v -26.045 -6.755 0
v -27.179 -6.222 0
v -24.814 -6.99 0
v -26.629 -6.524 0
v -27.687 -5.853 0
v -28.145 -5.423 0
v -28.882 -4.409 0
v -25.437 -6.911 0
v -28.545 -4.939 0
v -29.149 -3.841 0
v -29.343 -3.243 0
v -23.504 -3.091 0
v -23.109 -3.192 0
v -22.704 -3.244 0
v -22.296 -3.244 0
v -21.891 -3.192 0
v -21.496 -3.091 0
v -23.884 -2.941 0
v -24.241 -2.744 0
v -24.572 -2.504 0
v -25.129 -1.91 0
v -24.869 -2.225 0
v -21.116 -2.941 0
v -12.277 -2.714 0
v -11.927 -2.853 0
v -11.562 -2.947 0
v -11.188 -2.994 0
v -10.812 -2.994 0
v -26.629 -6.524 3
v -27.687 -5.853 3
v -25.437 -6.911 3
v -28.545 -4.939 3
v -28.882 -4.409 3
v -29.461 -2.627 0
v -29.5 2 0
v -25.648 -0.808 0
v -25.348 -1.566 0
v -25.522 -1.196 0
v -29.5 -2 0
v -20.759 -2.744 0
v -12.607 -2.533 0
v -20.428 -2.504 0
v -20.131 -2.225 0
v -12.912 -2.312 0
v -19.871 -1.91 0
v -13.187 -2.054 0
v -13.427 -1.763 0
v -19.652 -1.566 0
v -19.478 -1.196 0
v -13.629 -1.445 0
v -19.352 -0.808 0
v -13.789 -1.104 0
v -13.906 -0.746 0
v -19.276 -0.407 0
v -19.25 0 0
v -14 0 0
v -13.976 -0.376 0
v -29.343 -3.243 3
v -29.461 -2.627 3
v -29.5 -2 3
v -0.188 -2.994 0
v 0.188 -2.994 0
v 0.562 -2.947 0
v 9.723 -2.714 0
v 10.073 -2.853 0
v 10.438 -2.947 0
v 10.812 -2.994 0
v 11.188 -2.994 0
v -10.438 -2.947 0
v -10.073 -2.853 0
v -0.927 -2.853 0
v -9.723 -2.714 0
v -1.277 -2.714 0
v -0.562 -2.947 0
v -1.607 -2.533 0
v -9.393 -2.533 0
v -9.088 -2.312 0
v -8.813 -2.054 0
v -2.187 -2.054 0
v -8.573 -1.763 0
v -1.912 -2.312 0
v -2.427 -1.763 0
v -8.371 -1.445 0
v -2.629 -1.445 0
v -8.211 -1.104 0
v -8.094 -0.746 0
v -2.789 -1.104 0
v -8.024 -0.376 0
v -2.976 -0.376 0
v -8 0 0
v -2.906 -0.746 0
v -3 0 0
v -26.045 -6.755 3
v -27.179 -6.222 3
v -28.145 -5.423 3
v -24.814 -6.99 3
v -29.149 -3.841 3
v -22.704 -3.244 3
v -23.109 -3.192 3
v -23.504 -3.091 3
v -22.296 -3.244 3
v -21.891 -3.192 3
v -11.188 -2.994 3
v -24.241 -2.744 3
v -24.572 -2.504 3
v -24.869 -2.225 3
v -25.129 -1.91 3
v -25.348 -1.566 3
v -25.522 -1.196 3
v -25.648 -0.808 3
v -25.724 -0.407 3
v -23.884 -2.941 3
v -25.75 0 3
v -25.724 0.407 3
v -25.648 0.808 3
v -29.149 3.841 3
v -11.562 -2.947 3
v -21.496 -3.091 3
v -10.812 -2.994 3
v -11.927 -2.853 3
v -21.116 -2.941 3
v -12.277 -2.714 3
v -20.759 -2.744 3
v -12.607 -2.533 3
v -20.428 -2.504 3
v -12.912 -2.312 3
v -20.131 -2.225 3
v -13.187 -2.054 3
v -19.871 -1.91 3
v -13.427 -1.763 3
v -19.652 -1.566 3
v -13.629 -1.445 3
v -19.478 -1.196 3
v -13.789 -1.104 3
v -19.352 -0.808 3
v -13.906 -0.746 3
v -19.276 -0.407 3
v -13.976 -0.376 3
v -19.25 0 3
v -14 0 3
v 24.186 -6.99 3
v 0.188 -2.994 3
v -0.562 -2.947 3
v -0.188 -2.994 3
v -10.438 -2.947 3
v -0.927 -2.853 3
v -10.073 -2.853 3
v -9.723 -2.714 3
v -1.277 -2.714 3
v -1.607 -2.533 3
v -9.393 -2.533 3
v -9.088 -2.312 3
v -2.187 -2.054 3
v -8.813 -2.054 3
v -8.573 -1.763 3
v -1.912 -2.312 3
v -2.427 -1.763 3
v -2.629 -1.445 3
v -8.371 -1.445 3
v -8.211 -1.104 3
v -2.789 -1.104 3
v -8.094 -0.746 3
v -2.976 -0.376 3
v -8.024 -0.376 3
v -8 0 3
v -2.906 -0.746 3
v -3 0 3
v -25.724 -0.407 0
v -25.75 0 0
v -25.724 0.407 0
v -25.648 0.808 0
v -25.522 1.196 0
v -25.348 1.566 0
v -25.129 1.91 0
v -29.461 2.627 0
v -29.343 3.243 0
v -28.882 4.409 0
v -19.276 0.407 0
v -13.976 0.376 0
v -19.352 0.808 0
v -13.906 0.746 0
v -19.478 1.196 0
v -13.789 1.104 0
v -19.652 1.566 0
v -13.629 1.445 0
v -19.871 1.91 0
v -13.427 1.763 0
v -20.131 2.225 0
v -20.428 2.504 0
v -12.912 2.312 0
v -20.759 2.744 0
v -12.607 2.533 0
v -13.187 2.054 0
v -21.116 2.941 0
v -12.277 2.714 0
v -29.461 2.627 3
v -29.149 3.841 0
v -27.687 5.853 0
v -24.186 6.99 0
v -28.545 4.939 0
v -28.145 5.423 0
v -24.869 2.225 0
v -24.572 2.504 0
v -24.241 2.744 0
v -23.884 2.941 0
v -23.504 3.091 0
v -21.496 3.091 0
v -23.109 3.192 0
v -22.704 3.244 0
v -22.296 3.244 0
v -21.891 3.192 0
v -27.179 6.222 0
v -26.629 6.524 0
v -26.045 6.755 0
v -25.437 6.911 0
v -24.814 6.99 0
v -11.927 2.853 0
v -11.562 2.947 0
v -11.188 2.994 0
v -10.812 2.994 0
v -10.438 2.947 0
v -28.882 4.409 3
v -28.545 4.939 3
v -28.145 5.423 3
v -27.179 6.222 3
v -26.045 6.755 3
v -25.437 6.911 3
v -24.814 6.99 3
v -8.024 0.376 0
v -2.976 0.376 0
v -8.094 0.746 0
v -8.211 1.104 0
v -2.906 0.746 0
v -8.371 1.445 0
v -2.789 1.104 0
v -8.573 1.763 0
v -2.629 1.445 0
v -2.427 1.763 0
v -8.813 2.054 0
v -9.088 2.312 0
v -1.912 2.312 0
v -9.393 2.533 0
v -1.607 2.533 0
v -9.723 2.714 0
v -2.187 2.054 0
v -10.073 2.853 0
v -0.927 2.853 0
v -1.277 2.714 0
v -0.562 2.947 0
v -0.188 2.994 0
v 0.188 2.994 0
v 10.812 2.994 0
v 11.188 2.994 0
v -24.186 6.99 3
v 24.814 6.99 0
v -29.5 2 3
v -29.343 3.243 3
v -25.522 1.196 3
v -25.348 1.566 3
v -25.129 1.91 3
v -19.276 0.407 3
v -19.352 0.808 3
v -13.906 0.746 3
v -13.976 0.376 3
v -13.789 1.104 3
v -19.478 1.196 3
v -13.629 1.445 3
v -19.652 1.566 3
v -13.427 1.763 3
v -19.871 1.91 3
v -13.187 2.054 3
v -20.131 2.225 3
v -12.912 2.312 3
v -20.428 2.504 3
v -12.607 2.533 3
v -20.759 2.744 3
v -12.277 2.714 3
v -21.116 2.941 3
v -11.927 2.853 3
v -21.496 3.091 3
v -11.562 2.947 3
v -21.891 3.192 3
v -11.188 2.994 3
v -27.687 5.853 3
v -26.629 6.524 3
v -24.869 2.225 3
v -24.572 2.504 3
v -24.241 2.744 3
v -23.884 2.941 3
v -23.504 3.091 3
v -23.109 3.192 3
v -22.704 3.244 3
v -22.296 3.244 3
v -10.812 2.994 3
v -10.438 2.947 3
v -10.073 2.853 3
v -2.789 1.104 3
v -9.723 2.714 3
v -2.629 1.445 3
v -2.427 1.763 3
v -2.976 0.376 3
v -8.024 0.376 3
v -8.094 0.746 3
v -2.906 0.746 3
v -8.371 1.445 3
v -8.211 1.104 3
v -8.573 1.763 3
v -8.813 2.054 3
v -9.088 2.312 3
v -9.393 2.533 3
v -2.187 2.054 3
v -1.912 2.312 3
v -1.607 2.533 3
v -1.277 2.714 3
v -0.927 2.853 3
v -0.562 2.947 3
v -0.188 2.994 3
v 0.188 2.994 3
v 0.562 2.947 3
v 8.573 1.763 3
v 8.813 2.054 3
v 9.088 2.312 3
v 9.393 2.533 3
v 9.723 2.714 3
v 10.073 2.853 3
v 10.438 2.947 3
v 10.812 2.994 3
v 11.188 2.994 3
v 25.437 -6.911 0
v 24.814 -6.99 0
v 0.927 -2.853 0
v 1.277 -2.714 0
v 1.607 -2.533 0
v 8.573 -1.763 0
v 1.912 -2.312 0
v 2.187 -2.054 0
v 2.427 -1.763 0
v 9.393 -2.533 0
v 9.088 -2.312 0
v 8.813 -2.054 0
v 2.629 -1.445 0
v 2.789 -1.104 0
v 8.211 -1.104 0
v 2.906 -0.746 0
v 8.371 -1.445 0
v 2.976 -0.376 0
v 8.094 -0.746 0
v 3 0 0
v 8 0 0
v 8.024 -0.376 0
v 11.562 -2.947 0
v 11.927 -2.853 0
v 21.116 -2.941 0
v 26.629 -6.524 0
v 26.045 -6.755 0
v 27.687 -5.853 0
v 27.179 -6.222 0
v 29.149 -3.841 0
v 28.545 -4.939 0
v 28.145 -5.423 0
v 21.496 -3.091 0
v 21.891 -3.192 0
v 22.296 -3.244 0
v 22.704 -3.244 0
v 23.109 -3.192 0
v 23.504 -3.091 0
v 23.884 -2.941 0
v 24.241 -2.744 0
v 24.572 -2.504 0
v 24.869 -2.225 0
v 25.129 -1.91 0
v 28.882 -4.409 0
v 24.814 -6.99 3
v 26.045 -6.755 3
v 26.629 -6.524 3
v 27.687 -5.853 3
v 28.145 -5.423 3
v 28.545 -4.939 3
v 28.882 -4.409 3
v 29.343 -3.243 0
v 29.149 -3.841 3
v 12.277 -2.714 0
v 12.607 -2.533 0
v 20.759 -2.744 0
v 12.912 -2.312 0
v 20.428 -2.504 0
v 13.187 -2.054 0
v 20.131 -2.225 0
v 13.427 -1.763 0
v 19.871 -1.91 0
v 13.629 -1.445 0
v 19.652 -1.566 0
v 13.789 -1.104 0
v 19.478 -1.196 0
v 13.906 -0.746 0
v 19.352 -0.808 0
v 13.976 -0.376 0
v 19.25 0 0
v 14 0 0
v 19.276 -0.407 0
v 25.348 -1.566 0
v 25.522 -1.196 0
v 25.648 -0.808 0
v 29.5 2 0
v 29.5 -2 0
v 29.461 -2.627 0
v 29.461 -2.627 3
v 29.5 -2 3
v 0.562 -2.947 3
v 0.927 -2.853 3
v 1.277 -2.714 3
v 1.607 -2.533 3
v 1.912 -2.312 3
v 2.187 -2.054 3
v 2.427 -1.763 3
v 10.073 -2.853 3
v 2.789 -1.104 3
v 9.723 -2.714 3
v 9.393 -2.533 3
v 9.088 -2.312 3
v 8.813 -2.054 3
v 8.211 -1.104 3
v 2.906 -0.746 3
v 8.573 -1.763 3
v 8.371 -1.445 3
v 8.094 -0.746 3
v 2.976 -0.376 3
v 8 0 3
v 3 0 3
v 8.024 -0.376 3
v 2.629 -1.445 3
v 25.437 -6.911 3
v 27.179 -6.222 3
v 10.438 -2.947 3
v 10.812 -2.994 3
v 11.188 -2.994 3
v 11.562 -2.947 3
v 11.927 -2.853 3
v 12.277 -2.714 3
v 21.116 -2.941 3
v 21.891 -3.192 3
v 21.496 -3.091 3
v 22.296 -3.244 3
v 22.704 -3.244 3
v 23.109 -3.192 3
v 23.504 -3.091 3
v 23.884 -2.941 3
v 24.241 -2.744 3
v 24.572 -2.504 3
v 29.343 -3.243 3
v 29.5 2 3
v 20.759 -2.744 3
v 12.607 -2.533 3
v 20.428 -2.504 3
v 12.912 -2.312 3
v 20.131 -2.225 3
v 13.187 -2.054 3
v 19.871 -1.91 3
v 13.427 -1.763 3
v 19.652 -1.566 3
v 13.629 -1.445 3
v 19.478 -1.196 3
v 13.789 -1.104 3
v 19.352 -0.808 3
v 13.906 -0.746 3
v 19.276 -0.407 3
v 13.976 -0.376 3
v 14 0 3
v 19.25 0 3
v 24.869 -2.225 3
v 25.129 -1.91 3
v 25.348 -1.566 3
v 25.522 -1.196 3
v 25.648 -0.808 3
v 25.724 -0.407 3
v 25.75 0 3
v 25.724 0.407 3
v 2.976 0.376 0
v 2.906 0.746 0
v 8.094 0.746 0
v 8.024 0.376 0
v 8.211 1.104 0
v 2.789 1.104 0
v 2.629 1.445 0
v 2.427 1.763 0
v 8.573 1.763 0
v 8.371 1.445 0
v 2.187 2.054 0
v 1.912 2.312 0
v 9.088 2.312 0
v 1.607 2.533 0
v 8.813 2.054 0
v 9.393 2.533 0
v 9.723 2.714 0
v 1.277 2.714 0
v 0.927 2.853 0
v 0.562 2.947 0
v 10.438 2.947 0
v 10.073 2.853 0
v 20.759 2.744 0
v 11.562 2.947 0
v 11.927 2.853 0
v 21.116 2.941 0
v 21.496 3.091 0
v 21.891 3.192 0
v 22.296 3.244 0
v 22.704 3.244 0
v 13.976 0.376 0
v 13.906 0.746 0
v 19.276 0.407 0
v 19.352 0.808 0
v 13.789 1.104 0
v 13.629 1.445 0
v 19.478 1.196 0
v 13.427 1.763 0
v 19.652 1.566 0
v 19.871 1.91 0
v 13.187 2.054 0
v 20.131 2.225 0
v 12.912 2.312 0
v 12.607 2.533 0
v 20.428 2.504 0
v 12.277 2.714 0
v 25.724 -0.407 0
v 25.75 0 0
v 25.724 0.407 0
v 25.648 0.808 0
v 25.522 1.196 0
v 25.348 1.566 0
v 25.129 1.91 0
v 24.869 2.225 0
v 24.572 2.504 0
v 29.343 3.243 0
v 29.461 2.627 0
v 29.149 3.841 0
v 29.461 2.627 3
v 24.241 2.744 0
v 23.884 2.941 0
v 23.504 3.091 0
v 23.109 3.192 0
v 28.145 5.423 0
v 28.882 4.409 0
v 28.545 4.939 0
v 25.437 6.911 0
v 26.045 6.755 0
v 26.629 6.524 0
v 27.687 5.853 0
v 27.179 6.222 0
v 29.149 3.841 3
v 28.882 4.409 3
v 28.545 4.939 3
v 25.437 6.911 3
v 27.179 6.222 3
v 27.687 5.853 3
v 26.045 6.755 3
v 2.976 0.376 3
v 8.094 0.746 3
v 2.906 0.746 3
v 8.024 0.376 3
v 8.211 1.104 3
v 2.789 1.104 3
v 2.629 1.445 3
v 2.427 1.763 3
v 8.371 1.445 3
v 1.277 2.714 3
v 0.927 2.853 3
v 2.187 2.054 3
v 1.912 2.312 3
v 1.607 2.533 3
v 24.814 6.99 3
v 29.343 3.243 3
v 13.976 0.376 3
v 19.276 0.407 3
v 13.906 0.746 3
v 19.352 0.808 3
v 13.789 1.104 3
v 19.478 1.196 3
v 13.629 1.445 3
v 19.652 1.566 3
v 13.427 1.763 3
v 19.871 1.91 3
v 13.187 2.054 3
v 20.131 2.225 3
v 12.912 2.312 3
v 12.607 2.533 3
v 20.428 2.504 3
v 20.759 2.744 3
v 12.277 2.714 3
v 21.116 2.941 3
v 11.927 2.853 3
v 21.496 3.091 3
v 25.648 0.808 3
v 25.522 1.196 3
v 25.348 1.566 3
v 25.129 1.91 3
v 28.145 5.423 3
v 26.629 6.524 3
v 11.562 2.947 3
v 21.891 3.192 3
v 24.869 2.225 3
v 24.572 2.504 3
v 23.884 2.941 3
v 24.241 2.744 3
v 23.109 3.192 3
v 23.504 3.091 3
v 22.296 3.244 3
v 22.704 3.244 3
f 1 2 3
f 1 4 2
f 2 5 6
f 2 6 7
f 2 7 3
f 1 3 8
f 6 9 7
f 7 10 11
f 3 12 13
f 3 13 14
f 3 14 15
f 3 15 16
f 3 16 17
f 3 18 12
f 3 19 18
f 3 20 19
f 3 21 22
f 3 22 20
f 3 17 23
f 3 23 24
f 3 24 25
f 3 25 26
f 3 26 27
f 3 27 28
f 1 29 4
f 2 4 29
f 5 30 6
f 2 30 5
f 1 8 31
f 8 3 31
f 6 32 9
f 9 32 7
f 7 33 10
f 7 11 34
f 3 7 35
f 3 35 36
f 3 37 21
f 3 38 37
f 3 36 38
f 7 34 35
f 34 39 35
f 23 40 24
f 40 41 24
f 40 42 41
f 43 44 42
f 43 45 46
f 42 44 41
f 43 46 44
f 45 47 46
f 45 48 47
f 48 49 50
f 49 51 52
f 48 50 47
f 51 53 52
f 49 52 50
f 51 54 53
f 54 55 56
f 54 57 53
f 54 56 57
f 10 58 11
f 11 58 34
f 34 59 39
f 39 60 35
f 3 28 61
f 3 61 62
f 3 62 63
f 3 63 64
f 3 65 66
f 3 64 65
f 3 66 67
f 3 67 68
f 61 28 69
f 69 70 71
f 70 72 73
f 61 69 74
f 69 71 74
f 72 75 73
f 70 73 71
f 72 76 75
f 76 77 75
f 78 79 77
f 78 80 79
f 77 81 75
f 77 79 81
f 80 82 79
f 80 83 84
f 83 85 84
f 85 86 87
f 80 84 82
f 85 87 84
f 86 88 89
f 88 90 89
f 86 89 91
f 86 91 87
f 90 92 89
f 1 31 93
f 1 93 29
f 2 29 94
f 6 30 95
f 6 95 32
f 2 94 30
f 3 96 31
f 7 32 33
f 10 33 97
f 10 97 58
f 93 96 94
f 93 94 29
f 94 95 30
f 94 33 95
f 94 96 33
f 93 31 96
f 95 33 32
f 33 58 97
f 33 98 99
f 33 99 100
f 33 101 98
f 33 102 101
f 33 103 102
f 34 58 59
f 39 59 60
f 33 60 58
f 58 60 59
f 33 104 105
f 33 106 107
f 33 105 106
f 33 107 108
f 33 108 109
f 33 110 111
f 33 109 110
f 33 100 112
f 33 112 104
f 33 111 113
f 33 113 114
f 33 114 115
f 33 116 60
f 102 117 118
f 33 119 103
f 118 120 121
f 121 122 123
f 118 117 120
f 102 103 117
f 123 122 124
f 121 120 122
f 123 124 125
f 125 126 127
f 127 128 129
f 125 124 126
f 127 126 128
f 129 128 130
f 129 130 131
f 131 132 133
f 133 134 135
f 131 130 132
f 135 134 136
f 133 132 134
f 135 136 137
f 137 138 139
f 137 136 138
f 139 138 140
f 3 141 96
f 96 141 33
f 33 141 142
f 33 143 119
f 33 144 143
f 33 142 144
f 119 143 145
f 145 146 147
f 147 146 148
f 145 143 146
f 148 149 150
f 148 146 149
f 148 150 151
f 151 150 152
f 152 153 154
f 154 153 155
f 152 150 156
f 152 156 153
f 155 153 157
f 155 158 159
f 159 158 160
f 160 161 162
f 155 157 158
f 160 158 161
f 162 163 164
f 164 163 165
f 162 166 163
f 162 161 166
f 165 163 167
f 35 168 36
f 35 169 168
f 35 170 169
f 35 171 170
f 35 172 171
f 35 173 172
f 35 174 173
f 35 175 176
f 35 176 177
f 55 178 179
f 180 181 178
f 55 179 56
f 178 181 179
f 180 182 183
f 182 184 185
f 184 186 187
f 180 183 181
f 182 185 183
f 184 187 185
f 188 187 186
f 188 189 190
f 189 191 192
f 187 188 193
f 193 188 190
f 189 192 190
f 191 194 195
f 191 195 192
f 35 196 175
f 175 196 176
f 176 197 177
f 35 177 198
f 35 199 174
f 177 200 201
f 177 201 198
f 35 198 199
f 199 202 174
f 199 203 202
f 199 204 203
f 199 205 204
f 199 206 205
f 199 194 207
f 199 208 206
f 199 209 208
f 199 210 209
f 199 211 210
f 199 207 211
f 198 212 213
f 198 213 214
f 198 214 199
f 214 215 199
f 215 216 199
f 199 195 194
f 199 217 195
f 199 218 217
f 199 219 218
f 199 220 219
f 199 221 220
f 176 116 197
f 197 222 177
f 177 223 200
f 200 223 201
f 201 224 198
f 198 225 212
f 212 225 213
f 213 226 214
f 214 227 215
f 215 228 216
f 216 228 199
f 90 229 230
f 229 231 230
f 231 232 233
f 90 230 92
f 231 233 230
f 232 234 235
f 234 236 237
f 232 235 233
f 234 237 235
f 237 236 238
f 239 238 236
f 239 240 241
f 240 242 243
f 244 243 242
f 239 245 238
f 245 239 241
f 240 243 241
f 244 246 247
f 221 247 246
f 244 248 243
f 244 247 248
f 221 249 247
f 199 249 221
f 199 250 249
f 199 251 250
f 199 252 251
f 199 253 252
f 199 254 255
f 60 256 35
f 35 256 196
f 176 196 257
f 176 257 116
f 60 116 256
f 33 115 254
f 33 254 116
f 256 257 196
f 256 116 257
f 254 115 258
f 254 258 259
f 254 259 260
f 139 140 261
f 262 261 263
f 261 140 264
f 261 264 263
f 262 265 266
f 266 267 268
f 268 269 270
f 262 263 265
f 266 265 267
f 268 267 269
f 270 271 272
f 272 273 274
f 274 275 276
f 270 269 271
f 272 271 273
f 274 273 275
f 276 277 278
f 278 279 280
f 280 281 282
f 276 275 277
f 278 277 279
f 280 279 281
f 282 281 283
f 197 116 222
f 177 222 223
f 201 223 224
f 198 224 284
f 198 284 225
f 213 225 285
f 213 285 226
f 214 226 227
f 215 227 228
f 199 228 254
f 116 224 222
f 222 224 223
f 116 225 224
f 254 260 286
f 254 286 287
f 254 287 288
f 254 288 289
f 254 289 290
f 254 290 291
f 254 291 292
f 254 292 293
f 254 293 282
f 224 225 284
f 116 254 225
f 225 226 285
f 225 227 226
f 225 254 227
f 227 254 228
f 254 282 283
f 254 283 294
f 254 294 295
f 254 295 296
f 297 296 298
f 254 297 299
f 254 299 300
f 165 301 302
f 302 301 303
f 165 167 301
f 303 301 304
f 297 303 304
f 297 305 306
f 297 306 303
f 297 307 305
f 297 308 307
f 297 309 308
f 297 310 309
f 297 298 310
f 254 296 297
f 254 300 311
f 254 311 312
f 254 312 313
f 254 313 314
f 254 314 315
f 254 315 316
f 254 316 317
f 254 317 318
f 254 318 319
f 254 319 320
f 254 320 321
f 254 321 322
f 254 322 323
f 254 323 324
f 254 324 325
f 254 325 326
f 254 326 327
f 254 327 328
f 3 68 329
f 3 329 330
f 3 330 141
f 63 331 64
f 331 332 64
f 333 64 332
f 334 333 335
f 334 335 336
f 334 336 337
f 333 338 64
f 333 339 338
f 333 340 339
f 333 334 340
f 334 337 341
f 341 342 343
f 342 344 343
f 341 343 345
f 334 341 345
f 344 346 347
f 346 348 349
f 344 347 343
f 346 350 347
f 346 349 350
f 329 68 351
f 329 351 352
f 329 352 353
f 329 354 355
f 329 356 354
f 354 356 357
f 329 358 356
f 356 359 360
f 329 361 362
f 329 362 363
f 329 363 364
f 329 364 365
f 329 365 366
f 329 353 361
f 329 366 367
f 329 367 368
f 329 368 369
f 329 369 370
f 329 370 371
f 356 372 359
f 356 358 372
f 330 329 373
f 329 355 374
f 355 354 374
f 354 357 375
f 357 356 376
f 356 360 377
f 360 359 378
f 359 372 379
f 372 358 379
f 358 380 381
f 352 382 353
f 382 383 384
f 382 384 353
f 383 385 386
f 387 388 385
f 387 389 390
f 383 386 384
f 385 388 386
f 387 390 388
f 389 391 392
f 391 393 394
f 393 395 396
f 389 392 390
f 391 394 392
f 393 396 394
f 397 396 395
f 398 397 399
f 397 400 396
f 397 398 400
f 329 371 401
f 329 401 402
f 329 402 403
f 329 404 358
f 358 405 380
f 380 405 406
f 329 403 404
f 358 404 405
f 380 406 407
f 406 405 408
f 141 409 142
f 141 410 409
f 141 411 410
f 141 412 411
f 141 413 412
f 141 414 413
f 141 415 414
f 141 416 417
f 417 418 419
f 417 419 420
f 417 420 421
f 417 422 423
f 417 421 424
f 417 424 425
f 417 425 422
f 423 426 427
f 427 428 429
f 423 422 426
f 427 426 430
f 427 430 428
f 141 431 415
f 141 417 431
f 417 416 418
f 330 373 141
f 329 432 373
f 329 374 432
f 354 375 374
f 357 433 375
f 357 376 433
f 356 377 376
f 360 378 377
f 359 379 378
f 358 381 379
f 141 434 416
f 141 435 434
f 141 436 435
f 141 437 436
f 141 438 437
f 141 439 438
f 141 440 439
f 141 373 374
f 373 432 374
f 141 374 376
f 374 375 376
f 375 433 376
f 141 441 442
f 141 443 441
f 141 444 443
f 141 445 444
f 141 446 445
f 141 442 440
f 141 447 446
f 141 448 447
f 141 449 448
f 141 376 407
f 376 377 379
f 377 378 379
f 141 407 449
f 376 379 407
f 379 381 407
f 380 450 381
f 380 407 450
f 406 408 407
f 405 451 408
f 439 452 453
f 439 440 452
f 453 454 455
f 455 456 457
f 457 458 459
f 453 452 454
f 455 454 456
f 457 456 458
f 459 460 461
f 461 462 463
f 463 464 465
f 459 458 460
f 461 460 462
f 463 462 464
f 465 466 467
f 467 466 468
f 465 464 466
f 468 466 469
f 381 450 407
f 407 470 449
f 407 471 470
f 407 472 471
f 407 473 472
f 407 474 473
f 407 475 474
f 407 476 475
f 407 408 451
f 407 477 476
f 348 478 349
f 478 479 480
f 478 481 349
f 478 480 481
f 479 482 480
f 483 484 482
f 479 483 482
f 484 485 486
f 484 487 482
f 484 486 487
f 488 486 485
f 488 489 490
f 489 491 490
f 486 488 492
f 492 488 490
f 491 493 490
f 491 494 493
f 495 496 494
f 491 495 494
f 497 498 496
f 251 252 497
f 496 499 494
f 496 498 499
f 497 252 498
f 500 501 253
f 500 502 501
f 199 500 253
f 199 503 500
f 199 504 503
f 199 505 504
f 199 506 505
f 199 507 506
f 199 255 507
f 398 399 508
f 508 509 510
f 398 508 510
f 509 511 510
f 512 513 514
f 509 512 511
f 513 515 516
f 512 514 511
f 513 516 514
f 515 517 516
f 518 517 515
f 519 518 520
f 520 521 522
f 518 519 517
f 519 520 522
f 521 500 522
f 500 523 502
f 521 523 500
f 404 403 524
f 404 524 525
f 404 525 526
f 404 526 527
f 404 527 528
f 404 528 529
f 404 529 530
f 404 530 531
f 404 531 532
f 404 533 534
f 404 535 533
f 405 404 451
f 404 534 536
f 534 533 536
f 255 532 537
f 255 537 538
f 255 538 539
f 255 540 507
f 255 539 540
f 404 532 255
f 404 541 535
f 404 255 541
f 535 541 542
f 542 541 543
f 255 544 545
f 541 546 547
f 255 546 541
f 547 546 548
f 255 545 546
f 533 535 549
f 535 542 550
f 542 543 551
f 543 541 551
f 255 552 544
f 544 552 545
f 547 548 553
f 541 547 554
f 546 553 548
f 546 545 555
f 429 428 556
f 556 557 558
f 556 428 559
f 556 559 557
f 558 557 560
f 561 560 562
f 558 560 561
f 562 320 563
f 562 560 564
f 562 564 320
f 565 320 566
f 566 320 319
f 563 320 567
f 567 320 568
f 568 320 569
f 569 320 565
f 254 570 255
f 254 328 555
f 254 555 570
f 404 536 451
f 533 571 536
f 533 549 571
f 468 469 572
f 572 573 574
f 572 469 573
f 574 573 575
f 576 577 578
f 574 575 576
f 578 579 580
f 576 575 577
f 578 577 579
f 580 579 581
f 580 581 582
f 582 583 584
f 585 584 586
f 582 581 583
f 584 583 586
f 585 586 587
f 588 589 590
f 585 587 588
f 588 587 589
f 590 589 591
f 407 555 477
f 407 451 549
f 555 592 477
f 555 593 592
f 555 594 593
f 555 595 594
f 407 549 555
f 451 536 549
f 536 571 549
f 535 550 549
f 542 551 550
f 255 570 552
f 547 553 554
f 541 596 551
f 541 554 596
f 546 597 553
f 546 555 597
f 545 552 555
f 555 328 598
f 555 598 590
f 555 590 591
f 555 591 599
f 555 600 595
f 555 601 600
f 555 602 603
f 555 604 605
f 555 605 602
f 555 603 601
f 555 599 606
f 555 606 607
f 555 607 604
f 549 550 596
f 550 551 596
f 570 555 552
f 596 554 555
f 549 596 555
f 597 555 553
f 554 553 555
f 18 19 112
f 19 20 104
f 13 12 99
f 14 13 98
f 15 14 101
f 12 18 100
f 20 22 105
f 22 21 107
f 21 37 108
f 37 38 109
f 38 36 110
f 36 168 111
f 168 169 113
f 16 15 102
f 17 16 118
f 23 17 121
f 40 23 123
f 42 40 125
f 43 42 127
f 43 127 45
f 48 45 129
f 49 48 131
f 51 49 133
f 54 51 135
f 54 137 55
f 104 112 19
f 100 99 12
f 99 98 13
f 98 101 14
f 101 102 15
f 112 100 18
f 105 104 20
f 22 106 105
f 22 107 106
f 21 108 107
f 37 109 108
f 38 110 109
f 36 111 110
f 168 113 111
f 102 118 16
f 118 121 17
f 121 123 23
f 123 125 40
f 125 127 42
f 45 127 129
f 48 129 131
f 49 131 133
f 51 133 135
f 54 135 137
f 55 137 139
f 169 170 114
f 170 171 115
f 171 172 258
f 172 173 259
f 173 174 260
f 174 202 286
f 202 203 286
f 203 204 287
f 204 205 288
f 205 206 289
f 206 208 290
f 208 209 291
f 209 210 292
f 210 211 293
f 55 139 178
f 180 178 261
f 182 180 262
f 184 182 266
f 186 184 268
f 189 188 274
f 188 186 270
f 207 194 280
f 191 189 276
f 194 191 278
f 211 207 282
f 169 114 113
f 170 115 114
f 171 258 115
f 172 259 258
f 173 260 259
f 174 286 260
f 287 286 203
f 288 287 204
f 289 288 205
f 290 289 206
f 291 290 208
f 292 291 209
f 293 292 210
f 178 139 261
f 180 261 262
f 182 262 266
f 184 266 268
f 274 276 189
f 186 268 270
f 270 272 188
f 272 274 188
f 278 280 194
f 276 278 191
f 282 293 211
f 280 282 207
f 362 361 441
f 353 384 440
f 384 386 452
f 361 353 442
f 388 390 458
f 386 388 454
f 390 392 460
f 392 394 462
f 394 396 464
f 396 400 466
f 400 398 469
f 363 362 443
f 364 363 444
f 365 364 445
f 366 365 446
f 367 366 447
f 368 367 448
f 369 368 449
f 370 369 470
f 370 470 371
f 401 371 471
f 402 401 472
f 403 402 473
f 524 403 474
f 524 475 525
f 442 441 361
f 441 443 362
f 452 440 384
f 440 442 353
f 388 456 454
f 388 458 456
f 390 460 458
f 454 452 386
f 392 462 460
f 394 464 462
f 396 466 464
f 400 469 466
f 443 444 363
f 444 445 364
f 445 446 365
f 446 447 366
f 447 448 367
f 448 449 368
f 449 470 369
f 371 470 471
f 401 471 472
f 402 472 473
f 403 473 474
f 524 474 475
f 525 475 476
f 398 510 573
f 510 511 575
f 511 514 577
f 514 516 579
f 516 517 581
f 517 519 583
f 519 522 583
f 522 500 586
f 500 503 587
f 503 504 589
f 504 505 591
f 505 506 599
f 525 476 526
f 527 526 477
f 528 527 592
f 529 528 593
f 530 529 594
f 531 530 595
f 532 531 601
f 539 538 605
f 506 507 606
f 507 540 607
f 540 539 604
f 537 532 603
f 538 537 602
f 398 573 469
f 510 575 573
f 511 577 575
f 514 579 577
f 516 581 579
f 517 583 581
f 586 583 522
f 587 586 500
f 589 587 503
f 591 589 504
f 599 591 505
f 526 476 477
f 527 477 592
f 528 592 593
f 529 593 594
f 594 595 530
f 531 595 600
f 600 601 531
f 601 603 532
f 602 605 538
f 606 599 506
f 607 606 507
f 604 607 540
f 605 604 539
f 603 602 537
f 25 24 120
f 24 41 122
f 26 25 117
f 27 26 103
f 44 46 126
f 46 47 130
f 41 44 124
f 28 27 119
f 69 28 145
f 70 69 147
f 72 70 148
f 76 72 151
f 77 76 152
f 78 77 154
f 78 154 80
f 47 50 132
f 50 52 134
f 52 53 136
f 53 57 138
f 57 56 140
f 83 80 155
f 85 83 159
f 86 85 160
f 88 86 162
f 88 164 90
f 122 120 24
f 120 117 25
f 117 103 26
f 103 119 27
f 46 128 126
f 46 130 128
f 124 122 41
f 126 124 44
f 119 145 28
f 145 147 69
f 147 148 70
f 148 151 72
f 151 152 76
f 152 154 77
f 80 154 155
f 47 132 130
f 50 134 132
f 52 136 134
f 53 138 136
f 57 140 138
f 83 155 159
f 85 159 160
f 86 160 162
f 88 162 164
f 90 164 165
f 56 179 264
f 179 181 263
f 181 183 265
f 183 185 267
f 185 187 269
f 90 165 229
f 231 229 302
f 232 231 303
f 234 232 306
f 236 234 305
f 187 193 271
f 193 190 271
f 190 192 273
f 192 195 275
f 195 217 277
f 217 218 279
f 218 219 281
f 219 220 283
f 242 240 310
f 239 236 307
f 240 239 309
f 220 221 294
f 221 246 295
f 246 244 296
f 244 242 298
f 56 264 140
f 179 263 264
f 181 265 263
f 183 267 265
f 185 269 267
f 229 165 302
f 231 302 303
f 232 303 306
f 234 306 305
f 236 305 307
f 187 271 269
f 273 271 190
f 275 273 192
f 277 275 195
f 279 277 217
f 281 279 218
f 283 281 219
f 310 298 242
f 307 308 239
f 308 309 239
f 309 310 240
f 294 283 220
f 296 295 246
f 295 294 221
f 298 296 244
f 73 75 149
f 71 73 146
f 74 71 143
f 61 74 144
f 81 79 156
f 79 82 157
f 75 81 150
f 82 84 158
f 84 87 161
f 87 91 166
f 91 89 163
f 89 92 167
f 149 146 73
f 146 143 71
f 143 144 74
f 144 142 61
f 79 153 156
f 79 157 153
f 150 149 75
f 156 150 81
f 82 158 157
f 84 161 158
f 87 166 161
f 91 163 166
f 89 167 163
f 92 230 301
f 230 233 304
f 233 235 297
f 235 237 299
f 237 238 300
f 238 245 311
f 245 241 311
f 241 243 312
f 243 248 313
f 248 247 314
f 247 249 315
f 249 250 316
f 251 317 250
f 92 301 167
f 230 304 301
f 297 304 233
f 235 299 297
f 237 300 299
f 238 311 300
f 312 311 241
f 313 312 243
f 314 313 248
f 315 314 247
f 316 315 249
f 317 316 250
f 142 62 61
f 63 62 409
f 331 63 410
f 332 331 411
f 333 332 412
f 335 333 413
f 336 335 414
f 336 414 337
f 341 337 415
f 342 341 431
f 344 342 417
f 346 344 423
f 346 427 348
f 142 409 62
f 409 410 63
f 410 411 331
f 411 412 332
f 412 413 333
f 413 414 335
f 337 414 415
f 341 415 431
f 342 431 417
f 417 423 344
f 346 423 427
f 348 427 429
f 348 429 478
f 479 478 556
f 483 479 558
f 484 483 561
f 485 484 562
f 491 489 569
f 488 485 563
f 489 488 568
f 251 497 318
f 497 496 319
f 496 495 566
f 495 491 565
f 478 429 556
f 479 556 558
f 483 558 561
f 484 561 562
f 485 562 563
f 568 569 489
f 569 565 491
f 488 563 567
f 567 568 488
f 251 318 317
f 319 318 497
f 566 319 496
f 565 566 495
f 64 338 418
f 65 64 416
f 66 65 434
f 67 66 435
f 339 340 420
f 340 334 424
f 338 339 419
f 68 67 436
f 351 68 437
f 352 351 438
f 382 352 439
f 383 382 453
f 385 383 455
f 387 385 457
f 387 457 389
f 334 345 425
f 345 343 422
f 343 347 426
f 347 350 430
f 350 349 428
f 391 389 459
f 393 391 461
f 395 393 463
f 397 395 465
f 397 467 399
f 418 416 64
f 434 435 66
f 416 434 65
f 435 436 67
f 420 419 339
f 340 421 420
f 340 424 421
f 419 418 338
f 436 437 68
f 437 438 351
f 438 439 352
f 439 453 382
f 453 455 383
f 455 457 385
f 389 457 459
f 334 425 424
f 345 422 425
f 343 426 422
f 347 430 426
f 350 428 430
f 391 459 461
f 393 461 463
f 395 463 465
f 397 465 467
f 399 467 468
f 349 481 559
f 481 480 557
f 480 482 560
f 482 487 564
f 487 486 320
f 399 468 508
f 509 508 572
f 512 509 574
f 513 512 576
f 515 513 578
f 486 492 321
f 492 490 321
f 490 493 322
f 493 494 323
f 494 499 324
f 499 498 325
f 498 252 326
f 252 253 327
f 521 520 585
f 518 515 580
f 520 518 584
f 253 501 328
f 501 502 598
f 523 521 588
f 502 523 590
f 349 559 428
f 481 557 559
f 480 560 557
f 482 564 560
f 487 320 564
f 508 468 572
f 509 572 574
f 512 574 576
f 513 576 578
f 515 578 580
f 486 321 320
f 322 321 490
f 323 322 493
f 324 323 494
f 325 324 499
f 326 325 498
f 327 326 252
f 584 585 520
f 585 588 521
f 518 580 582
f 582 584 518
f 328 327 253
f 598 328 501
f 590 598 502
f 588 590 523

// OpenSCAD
$fn = 50;

difference() {
	union() {
		hull() {
			translate(v = [-24.5, 2.0, 0]) {
				cylinder(h = 3, r = 5);
			}
			translate(v = [24.5, 2.0, 0]) {
				cylinder(h = 3, r = 5);
			}
			translate(v = [-24.5, -2.0, 0]) {
				cylinder(h = 3, r = 5);
			}
			translate(v = [24.5, -2.0, 0]) {
				cylinder(h = 3, r = 5);
			}
		}
	}
	union() {
		translate(v = [-22.5, 0.0, 0]) {
			cylinder(h = 3, r = 3.25);
		}
		translate(v = [22.5, 0.0, 0]) {
			cylinder(h = 3, r = 3.25);
		}
		translate(v = [-11.0, 0, 0.0]) {
			cylinder(h = 3, r = 3.0);
		}
		cylinder(h = 3, r = 3.0);
		translate(v = [11.0, 0, 0.0]) {
			cylinder(h = 3, r = 3.0);
		}
	}
}
